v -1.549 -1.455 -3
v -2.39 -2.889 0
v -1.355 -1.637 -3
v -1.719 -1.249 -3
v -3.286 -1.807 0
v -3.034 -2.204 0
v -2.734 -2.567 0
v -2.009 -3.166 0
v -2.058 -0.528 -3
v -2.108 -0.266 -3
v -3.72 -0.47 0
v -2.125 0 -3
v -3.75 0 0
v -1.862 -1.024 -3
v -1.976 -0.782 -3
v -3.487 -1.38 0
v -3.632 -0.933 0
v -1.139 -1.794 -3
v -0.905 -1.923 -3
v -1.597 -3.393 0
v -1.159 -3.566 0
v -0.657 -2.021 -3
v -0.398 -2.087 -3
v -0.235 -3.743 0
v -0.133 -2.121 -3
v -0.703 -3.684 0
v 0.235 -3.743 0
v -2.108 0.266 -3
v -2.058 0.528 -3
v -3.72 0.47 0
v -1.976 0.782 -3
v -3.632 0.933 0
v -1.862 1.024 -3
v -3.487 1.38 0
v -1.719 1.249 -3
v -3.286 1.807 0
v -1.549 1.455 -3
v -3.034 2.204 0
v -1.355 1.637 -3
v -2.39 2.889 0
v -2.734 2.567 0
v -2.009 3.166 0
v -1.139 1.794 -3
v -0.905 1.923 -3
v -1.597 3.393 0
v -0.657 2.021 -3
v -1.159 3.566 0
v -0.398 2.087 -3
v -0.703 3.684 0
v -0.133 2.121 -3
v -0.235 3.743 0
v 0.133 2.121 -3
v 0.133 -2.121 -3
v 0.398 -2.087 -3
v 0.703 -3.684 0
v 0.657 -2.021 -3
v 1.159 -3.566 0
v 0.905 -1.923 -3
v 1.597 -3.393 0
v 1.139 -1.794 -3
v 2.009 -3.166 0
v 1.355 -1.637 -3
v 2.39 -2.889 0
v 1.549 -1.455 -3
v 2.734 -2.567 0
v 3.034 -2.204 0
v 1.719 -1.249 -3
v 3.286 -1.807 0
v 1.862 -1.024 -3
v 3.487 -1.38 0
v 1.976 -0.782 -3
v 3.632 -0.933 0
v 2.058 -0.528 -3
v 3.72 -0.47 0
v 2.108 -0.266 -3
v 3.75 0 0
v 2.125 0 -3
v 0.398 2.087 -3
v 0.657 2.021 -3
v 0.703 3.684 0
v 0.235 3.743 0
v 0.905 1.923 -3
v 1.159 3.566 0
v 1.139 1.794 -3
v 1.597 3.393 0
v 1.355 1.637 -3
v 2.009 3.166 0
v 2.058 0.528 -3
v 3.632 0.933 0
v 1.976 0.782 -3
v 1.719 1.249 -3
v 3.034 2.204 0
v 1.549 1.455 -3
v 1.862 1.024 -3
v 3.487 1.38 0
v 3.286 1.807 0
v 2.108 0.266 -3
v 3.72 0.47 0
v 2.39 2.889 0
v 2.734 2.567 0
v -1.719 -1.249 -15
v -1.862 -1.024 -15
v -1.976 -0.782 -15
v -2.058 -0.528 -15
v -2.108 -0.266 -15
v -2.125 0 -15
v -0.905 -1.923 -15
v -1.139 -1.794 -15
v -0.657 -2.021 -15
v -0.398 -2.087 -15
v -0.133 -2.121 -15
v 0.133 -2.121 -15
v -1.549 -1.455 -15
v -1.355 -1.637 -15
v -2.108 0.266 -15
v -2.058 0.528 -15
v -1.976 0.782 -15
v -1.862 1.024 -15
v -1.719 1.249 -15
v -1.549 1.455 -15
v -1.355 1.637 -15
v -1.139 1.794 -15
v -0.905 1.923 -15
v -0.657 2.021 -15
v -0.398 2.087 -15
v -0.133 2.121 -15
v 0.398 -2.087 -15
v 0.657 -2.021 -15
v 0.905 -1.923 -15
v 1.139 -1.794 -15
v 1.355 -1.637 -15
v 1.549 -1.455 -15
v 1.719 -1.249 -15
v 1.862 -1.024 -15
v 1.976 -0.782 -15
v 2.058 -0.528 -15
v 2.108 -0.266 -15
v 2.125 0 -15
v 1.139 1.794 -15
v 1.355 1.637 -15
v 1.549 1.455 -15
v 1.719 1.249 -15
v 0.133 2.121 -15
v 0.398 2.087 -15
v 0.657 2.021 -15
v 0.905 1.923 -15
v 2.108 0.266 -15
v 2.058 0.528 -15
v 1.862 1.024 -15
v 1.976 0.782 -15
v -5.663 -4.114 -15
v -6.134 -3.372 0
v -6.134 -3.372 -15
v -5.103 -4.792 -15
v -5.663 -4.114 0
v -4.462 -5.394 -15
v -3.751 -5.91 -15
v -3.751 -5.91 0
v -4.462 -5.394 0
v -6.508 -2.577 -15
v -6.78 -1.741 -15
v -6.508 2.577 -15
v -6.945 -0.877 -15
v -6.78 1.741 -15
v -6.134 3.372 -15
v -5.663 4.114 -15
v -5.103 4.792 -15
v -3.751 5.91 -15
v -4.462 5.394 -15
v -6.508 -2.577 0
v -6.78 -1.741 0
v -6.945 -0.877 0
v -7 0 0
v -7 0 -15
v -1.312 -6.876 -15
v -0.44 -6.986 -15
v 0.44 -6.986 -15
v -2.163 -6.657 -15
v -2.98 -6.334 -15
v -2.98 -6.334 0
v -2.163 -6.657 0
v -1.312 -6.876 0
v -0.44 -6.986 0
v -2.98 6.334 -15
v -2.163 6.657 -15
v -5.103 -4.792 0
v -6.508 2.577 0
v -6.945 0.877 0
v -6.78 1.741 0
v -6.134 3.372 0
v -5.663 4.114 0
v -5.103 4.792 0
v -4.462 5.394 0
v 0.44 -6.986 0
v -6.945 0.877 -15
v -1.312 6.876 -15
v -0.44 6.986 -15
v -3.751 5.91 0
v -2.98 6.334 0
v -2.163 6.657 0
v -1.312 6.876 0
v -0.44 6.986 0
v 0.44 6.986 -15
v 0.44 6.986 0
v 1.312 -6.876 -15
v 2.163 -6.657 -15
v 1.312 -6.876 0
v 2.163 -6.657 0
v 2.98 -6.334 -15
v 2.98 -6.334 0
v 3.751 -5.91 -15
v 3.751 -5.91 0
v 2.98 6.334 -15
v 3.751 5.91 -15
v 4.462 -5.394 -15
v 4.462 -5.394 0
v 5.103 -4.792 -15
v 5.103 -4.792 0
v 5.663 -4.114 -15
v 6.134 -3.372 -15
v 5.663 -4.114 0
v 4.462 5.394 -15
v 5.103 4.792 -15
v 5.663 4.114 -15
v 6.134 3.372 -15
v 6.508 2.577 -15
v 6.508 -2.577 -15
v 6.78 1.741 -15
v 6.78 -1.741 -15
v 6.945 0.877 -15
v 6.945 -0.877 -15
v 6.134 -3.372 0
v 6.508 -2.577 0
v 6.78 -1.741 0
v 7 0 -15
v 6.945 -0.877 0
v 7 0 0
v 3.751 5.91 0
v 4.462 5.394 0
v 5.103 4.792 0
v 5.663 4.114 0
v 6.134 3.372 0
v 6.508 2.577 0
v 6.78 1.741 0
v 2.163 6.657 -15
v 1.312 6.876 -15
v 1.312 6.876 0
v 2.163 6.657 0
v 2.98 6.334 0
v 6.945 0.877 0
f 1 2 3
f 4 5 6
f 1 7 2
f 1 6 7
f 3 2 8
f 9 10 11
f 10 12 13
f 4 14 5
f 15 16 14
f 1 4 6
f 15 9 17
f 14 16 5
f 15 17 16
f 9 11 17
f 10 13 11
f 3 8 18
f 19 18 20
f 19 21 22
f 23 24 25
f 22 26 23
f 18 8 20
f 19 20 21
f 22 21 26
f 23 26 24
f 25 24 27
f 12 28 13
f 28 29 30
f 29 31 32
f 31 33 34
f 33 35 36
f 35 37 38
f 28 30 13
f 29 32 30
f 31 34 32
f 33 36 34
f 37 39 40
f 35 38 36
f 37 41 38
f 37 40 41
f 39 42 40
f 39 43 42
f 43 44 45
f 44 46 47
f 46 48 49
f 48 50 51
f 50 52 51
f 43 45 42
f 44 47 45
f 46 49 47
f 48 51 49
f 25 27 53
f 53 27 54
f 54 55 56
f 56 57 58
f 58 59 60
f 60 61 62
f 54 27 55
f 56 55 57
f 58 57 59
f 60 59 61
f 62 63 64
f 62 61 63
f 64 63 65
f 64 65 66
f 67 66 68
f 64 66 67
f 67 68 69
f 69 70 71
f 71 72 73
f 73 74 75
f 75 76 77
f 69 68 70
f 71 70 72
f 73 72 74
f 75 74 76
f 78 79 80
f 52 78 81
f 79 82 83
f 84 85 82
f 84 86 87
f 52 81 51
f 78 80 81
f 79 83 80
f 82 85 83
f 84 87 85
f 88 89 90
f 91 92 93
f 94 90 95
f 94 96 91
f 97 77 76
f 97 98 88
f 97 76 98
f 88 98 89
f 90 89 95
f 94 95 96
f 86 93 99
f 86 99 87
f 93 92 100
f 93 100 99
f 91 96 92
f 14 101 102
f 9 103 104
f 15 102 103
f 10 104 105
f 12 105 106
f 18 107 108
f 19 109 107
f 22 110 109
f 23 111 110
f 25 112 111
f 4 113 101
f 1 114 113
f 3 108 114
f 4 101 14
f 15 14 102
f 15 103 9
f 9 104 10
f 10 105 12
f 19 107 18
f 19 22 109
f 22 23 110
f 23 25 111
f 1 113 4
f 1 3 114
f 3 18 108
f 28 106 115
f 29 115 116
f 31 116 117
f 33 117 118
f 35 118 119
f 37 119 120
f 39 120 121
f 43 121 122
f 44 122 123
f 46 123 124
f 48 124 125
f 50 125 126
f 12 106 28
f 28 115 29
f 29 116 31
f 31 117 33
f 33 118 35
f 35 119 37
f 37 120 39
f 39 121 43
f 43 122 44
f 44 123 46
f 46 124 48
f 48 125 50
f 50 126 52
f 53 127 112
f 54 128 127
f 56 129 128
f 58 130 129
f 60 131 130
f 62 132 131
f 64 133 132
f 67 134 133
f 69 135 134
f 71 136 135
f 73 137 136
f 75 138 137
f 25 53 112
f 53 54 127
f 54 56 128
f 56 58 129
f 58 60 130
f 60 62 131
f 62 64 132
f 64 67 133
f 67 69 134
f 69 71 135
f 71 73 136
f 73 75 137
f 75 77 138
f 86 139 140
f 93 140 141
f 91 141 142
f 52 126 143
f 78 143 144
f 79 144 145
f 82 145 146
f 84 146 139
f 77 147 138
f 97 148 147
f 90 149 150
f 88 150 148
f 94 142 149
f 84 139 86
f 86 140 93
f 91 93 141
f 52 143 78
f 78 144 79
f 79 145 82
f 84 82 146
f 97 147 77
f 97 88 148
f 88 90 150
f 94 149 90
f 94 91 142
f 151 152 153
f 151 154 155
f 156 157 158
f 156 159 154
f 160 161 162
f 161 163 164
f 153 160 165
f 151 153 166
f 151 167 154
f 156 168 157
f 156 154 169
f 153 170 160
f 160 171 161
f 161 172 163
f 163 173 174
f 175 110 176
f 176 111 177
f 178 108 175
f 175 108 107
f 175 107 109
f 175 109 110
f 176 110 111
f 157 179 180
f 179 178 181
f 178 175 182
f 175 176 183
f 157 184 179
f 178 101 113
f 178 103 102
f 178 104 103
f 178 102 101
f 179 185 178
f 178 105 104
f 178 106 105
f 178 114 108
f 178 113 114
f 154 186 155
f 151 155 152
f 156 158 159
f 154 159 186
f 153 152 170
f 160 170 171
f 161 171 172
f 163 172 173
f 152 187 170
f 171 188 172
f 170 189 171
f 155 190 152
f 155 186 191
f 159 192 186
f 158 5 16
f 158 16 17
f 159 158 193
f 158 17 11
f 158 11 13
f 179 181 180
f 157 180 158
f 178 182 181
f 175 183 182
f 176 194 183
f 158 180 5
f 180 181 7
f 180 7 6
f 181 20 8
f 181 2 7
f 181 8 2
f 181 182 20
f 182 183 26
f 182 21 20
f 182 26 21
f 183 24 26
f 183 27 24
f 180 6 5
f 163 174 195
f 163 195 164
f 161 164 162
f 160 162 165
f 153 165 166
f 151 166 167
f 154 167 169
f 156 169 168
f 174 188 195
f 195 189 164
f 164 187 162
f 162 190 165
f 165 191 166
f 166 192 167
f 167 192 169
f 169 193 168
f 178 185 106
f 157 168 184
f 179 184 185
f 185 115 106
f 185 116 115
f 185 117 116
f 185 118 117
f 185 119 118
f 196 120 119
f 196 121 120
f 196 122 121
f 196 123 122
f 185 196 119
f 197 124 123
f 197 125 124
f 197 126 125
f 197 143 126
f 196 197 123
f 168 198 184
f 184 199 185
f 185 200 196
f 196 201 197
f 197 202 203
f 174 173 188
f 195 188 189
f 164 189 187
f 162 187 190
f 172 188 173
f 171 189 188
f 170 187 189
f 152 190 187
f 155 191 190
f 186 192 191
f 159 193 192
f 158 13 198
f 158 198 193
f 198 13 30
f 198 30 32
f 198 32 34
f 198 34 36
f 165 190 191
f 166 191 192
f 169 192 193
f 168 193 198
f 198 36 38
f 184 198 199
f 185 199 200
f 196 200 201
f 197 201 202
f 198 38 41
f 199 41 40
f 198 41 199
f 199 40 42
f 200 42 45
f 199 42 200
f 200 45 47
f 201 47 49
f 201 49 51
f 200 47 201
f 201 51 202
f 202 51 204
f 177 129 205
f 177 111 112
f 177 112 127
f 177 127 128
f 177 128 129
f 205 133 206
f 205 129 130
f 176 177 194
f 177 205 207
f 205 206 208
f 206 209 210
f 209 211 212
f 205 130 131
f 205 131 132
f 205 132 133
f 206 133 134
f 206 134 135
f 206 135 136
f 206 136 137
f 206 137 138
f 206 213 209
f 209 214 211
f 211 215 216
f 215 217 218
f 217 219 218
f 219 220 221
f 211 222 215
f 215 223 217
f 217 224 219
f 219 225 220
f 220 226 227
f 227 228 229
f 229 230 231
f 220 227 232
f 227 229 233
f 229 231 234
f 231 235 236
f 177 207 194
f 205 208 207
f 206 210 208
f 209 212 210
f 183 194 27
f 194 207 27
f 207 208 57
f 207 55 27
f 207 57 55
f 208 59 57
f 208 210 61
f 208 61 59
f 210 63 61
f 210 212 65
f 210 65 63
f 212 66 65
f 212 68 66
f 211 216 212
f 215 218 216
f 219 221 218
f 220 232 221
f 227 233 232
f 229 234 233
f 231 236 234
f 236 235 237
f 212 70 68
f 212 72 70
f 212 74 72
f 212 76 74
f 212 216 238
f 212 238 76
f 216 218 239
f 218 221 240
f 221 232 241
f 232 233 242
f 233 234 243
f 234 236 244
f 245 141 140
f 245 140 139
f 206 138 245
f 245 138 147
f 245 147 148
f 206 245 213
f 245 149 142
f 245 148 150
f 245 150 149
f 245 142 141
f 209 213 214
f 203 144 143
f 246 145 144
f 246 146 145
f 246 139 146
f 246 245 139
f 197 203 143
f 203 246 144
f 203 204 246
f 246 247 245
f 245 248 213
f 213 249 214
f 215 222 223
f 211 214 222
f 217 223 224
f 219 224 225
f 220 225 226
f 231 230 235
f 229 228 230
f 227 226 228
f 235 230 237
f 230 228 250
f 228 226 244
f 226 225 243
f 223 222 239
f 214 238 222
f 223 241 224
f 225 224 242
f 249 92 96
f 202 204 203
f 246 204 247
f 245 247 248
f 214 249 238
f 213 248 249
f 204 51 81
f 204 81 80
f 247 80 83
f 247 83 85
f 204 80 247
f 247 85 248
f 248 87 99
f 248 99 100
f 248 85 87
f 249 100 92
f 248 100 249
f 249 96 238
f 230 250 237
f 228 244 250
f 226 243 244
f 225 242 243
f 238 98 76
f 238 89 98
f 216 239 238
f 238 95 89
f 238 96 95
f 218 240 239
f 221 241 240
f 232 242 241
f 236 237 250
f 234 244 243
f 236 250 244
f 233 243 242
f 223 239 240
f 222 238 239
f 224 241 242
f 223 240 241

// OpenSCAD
$fn = 50;


difference() {
	union() {
		translate(v = [0, 0, -15.0000000000]) {
			cylinder(h = 15, r = 7.0000000000);
		}
	}
	union() {
		translate(v = [0, 0, 0]) {
			rotate(a = [0, 0, 0]) {
				difference() {
					union() {
						translate(v = [0, 0, -18.0000000000]) {
							cylinder(h = 18, r = 2.0000000000);
						}
						translate(v = [0, 0, -3]) {
							cylinder(h = 3, r1 = 2.1250000000, r2 = 3.7500000000);
						}
						translate(v = [0, 0, -18.0000000000]) {
							cylinder(h = 18, r = 2.1250000000);
						}
						translate(v = [0, 0, -18.0000000000]) {
							cylinder(h = 18, r = 2.0000000000);
						}
					}
					union();
				}
			}
		}
	}
}
